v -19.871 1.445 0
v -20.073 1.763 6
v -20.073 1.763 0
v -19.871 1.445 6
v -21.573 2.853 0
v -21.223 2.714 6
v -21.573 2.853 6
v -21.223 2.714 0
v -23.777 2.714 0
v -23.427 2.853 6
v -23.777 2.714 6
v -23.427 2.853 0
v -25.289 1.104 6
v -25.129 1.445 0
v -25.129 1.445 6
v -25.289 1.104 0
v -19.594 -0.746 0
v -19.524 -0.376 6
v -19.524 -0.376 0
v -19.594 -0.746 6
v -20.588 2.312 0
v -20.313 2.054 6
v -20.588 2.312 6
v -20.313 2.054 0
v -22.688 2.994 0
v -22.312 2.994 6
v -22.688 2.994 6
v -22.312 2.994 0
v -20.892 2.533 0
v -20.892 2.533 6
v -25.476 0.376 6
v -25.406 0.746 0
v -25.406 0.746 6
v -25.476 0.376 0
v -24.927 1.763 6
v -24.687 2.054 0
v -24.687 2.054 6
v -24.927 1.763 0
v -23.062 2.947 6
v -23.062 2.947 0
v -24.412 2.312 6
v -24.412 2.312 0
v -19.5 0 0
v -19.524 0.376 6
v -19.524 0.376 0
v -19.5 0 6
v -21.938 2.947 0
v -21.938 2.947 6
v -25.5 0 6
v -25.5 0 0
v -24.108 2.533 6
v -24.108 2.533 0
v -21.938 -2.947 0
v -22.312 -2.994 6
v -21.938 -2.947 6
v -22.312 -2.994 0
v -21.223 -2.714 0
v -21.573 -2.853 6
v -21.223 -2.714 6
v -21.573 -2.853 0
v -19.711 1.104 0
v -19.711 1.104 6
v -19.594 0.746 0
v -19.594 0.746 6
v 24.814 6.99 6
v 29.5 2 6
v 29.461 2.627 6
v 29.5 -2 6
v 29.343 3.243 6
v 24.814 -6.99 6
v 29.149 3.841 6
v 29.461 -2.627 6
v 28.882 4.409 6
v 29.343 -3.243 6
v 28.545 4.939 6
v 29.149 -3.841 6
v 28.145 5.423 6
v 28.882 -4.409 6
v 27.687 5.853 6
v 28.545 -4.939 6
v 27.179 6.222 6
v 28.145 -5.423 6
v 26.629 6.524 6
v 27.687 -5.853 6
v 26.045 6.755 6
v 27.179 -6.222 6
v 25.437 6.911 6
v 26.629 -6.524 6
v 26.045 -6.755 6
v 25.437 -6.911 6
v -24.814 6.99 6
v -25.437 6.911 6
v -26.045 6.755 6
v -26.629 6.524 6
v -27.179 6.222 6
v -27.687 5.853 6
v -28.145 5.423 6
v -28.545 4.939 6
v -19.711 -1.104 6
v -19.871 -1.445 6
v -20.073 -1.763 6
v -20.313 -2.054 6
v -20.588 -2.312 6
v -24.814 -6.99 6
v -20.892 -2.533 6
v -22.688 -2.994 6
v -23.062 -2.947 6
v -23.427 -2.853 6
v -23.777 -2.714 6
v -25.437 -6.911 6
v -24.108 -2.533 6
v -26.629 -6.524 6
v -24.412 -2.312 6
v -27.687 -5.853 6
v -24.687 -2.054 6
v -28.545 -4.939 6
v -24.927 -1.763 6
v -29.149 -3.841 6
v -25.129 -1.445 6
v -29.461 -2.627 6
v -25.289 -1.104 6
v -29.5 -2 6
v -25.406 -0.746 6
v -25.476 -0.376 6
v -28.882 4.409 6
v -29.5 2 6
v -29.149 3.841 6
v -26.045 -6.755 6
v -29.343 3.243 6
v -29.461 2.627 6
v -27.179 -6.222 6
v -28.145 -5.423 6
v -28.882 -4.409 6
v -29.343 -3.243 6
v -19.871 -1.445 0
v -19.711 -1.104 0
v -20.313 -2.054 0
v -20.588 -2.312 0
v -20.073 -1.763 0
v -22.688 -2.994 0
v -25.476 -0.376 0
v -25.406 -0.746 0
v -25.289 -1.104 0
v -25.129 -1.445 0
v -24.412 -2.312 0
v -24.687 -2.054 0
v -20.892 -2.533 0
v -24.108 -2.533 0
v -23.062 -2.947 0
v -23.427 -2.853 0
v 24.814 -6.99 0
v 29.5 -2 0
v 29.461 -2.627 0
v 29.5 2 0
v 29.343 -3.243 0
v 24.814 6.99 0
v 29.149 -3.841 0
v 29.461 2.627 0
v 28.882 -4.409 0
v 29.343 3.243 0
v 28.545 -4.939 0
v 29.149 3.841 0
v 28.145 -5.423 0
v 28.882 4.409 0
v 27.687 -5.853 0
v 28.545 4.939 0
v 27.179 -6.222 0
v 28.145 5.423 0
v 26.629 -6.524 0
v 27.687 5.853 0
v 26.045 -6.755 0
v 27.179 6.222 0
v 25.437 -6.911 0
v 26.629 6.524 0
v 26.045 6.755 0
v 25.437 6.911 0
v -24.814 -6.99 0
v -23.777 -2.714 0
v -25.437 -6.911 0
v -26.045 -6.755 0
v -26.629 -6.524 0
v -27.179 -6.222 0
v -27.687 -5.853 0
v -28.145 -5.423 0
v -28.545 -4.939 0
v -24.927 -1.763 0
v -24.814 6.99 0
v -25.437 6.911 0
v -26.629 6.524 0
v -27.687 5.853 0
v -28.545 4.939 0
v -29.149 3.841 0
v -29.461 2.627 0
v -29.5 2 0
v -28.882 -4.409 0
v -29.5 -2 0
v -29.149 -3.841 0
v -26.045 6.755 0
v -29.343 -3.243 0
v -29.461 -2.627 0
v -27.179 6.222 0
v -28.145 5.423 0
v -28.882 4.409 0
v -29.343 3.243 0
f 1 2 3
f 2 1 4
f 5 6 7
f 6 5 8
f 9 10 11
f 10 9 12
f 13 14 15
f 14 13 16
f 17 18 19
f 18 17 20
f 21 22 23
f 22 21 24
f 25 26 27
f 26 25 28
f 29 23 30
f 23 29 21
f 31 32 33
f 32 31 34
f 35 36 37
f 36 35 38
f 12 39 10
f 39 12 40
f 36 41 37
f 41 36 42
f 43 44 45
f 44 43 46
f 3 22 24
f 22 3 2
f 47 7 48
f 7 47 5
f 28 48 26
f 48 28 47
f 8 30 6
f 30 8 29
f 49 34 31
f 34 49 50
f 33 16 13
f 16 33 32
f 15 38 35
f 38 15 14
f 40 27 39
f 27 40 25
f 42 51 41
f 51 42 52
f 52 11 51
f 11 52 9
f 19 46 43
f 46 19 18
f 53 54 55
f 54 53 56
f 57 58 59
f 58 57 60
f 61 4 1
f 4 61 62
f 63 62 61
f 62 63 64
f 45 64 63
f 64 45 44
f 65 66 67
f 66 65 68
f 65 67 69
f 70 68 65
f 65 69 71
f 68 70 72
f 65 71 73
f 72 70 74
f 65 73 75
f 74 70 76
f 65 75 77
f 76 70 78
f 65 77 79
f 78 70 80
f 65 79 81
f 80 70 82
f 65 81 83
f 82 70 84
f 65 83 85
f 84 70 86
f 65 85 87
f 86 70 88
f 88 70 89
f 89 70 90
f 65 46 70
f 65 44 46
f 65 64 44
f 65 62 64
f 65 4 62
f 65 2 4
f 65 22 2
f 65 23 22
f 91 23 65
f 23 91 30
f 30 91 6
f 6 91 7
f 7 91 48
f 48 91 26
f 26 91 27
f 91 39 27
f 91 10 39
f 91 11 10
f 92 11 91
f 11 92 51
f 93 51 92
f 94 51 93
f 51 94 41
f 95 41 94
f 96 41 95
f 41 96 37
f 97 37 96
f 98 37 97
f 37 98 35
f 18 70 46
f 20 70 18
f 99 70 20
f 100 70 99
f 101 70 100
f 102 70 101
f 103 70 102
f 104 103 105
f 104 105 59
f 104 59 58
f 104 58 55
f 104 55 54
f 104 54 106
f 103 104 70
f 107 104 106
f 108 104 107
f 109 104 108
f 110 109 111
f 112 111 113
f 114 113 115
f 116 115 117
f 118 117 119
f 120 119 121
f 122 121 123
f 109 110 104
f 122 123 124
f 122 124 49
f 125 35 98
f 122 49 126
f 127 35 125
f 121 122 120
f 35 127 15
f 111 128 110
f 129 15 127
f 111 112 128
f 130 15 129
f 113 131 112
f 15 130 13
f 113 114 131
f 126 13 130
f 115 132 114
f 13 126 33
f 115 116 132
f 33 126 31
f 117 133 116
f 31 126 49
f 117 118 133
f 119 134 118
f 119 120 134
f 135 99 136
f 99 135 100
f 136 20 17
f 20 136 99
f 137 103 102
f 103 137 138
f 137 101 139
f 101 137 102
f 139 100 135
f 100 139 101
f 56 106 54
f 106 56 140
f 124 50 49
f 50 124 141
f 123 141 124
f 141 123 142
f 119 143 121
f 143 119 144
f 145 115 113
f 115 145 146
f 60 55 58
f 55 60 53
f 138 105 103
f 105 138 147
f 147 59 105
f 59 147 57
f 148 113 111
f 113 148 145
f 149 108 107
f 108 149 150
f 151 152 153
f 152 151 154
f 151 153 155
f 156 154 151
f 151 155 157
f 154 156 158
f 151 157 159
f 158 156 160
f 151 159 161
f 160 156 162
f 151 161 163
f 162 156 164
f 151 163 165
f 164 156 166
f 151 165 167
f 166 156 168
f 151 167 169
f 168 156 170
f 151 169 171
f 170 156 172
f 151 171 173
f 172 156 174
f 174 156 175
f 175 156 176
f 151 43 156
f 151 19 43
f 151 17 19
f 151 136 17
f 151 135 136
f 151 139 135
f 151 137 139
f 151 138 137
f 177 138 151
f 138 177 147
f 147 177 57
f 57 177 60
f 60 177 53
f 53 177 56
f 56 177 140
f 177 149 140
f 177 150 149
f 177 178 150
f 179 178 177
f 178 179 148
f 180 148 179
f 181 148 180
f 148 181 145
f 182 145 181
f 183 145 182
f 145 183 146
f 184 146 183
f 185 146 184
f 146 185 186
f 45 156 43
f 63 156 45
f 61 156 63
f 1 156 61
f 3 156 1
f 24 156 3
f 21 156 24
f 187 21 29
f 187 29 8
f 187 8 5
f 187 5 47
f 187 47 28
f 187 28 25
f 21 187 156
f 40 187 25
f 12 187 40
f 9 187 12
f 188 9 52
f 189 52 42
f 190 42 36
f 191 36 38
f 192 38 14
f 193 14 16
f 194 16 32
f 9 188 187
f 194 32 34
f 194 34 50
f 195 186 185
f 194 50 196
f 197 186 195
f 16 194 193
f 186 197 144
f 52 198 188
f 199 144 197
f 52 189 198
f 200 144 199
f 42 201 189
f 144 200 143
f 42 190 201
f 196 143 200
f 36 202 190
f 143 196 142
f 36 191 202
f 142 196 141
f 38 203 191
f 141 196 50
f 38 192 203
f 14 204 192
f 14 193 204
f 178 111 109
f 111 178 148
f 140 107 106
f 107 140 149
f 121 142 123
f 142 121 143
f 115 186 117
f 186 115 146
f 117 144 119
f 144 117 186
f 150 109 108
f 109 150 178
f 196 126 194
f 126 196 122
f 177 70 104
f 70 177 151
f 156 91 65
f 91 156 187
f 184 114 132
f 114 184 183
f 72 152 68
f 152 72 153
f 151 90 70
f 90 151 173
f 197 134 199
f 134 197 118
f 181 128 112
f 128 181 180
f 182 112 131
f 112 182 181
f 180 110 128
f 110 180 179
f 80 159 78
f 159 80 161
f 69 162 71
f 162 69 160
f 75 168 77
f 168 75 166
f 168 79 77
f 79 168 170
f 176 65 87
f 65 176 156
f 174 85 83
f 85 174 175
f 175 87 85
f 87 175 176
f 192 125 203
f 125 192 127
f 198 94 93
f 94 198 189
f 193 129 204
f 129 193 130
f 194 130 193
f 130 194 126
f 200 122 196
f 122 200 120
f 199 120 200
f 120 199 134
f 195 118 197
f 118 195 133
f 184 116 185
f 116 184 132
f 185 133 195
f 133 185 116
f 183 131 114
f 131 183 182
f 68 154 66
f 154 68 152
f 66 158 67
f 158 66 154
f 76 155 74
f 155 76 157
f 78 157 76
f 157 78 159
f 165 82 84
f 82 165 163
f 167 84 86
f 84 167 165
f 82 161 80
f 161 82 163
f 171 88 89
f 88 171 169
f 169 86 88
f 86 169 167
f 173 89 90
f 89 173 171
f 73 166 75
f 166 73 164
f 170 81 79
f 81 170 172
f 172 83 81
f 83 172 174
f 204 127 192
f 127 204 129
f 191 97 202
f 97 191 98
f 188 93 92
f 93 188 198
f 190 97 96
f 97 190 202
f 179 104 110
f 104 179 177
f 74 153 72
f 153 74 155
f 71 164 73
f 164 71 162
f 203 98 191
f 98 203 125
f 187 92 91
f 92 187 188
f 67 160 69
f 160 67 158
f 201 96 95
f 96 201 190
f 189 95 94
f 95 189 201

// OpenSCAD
$fn = 50;


difference() {
	union() {
		hull() {
			translate(v = [-24.5000000000, 2.0000000000, 0]) {
				cylinder(h = 6, r = 5);
			}
			translate(v = [24.5000000000, 2.0000000000, 0]) {
				cylinder(h = 6, r = 5);
			}
			translate(v = [-24.5000000000, -2.0000000000, 0]) {
				cylinder(h = 6, r = 5);
			}
			translate(v = [24.5000000000, -2.0000000000, 0]) {
				cylinder(h = 6, r = 5);
			}
		}
	}
	union() {
		translate(v = [-22.5000000000, 0.0000000000, 0]) {
			cylinder(h = 6, r = 3.0000000000);
		}
		translate(v = [-22.5000000000, 0.0000000000, 0]) {
			cylinder(h = 6, r = 1.5000000000);
		}
		translate(v = [-22.5000000000, 0.0000000000, 0]) {
			cylinder(h = 6, r = 1.5000000000);
		}
		translate(v = [-22.5000000000, 0.0000000000, 0]) {
			cylinder(h = 6, r = 1.5000000000);
		}
	}
}
